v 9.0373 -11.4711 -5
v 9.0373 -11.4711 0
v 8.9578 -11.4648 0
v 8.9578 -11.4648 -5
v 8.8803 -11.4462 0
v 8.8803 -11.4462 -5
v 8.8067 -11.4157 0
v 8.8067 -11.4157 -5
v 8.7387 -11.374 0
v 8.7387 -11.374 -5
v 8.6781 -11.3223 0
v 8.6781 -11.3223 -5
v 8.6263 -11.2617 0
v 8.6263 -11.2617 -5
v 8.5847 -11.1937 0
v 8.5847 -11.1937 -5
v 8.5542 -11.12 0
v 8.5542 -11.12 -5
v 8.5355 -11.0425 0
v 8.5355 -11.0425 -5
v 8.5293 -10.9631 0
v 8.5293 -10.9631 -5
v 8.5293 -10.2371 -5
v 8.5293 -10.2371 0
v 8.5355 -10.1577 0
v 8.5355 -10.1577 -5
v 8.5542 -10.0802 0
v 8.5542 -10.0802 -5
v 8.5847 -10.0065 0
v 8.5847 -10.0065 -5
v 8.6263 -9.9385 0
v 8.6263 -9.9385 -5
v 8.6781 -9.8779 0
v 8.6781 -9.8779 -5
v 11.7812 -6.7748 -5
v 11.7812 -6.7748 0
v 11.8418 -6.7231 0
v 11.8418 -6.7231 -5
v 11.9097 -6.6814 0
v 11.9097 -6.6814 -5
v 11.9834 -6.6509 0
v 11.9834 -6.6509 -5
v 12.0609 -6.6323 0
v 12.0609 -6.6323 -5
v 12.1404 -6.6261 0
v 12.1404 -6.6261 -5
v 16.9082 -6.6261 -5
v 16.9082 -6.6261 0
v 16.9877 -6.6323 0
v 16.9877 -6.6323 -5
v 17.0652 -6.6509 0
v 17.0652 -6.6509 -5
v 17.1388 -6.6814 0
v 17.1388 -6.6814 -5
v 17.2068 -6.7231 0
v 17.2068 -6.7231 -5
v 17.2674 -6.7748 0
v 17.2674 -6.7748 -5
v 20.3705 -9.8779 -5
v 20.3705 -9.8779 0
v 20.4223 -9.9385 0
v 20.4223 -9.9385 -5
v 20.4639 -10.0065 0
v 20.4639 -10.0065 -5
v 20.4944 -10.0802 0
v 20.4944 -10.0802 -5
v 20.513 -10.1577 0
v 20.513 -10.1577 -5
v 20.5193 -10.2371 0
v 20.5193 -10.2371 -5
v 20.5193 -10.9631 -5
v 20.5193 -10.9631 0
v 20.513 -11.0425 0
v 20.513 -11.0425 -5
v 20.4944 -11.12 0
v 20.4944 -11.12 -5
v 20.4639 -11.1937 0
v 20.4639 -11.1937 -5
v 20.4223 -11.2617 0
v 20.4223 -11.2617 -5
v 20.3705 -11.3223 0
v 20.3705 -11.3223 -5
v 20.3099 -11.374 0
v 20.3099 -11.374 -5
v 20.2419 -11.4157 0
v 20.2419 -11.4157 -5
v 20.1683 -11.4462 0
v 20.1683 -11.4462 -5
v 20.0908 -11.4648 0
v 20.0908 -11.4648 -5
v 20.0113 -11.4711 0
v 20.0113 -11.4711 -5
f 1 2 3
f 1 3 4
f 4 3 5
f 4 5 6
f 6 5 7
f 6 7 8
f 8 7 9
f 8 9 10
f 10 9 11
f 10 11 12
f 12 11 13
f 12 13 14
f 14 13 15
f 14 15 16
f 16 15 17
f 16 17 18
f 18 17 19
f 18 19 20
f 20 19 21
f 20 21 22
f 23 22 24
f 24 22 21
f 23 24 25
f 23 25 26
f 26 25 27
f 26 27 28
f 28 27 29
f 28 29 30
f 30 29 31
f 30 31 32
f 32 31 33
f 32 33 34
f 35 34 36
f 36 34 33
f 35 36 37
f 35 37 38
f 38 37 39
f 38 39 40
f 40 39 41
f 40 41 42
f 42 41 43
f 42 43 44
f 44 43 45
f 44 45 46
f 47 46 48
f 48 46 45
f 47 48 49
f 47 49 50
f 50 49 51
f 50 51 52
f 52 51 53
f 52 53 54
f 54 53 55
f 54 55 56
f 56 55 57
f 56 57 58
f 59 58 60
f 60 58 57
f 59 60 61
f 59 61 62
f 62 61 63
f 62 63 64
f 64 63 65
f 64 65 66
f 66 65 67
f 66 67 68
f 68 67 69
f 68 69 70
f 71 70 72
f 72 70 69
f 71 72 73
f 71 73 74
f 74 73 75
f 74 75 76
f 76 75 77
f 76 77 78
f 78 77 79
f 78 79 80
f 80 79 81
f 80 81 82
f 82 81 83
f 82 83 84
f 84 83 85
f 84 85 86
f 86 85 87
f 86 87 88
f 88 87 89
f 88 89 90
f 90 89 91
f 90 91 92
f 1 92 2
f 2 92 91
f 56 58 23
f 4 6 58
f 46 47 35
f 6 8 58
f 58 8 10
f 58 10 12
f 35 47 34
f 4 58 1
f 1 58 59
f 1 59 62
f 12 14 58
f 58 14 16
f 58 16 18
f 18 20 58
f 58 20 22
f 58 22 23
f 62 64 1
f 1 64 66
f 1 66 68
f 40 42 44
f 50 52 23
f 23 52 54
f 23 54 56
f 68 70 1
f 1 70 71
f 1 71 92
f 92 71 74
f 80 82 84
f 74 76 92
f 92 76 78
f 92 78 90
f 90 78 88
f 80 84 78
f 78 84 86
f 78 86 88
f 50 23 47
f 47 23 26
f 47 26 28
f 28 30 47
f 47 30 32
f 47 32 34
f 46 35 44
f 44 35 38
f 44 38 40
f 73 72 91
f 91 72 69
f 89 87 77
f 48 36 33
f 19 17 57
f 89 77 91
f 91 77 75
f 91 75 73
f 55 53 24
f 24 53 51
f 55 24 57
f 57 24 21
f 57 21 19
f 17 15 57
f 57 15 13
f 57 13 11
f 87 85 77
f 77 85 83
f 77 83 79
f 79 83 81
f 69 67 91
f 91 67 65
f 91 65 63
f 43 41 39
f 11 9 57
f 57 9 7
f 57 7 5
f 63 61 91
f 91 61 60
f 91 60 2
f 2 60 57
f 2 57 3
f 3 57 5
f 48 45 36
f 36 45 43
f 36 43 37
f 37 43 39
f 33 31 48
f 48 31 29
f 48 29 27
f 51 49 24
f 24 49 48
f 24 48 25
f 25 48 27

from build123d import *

# Parameters (mm, degrees)
P_IDAT_VYSUNUT_M1_DEPTH = 5


with BuildPart() as part:
    # Skica1 → Přidat vysunutím1 (new body)
    with BuildSketch(Plane.XY):
        with BuildLine():
            Line((17.662287798, -11.471059771), (11.386287798, -11.471059771))
            Line((11.386287798, -11.471059771), (9.037287798, -11.471059771))
            ThreePointArc((9.037287798, -11.471059771), (8.678077553, -11.322270016), (8.529287798, -10.963059771))
            Line((8.529287798, -10.963059771), (8.529287798, -10.237140432))
            ThreePointArc((8.529287798, -10.237140432), (8.567956995, -10.042737249), (8.678077553, -9.877930187))
            Line((8.678077553, -9.877930187), (11.781158214, -6.774849526))
            ThreePointArc((11.781158214, -6.774849526), (11.945965275, -6.664728968), (12.140368459, -6.626059771))
            Line((12.140368459, -6.626059771), (16.908207136, -6.626059771))
            ThreePointArc((16.908207136, -6.626059771), (17.10261032, -6.664728968), (17.267417381, -6.774849526))
            Line((17.267417381, -6.774849526), (20.370498042, -9.877930187))
            ThreePointArc((20.370498042, -9.877930187), (20.4806186, -10.042737249), (20.519287798, -10.237140432))
            Line((20.519287798, -10.237140432), (20.519287798, -10.963059771))
            ThreePointArc((20.519287798, -10.963059771), (20.370498042, -11.322270016), (20.011287798, -11.471059771))
            Line((20.011287798, -11.471059771), (17.662287798, -11.471059771))
        make_face()
    extrude(amount=-P_IDAT_VYSUNUT_M1_DEPTH)


solid = part.part
